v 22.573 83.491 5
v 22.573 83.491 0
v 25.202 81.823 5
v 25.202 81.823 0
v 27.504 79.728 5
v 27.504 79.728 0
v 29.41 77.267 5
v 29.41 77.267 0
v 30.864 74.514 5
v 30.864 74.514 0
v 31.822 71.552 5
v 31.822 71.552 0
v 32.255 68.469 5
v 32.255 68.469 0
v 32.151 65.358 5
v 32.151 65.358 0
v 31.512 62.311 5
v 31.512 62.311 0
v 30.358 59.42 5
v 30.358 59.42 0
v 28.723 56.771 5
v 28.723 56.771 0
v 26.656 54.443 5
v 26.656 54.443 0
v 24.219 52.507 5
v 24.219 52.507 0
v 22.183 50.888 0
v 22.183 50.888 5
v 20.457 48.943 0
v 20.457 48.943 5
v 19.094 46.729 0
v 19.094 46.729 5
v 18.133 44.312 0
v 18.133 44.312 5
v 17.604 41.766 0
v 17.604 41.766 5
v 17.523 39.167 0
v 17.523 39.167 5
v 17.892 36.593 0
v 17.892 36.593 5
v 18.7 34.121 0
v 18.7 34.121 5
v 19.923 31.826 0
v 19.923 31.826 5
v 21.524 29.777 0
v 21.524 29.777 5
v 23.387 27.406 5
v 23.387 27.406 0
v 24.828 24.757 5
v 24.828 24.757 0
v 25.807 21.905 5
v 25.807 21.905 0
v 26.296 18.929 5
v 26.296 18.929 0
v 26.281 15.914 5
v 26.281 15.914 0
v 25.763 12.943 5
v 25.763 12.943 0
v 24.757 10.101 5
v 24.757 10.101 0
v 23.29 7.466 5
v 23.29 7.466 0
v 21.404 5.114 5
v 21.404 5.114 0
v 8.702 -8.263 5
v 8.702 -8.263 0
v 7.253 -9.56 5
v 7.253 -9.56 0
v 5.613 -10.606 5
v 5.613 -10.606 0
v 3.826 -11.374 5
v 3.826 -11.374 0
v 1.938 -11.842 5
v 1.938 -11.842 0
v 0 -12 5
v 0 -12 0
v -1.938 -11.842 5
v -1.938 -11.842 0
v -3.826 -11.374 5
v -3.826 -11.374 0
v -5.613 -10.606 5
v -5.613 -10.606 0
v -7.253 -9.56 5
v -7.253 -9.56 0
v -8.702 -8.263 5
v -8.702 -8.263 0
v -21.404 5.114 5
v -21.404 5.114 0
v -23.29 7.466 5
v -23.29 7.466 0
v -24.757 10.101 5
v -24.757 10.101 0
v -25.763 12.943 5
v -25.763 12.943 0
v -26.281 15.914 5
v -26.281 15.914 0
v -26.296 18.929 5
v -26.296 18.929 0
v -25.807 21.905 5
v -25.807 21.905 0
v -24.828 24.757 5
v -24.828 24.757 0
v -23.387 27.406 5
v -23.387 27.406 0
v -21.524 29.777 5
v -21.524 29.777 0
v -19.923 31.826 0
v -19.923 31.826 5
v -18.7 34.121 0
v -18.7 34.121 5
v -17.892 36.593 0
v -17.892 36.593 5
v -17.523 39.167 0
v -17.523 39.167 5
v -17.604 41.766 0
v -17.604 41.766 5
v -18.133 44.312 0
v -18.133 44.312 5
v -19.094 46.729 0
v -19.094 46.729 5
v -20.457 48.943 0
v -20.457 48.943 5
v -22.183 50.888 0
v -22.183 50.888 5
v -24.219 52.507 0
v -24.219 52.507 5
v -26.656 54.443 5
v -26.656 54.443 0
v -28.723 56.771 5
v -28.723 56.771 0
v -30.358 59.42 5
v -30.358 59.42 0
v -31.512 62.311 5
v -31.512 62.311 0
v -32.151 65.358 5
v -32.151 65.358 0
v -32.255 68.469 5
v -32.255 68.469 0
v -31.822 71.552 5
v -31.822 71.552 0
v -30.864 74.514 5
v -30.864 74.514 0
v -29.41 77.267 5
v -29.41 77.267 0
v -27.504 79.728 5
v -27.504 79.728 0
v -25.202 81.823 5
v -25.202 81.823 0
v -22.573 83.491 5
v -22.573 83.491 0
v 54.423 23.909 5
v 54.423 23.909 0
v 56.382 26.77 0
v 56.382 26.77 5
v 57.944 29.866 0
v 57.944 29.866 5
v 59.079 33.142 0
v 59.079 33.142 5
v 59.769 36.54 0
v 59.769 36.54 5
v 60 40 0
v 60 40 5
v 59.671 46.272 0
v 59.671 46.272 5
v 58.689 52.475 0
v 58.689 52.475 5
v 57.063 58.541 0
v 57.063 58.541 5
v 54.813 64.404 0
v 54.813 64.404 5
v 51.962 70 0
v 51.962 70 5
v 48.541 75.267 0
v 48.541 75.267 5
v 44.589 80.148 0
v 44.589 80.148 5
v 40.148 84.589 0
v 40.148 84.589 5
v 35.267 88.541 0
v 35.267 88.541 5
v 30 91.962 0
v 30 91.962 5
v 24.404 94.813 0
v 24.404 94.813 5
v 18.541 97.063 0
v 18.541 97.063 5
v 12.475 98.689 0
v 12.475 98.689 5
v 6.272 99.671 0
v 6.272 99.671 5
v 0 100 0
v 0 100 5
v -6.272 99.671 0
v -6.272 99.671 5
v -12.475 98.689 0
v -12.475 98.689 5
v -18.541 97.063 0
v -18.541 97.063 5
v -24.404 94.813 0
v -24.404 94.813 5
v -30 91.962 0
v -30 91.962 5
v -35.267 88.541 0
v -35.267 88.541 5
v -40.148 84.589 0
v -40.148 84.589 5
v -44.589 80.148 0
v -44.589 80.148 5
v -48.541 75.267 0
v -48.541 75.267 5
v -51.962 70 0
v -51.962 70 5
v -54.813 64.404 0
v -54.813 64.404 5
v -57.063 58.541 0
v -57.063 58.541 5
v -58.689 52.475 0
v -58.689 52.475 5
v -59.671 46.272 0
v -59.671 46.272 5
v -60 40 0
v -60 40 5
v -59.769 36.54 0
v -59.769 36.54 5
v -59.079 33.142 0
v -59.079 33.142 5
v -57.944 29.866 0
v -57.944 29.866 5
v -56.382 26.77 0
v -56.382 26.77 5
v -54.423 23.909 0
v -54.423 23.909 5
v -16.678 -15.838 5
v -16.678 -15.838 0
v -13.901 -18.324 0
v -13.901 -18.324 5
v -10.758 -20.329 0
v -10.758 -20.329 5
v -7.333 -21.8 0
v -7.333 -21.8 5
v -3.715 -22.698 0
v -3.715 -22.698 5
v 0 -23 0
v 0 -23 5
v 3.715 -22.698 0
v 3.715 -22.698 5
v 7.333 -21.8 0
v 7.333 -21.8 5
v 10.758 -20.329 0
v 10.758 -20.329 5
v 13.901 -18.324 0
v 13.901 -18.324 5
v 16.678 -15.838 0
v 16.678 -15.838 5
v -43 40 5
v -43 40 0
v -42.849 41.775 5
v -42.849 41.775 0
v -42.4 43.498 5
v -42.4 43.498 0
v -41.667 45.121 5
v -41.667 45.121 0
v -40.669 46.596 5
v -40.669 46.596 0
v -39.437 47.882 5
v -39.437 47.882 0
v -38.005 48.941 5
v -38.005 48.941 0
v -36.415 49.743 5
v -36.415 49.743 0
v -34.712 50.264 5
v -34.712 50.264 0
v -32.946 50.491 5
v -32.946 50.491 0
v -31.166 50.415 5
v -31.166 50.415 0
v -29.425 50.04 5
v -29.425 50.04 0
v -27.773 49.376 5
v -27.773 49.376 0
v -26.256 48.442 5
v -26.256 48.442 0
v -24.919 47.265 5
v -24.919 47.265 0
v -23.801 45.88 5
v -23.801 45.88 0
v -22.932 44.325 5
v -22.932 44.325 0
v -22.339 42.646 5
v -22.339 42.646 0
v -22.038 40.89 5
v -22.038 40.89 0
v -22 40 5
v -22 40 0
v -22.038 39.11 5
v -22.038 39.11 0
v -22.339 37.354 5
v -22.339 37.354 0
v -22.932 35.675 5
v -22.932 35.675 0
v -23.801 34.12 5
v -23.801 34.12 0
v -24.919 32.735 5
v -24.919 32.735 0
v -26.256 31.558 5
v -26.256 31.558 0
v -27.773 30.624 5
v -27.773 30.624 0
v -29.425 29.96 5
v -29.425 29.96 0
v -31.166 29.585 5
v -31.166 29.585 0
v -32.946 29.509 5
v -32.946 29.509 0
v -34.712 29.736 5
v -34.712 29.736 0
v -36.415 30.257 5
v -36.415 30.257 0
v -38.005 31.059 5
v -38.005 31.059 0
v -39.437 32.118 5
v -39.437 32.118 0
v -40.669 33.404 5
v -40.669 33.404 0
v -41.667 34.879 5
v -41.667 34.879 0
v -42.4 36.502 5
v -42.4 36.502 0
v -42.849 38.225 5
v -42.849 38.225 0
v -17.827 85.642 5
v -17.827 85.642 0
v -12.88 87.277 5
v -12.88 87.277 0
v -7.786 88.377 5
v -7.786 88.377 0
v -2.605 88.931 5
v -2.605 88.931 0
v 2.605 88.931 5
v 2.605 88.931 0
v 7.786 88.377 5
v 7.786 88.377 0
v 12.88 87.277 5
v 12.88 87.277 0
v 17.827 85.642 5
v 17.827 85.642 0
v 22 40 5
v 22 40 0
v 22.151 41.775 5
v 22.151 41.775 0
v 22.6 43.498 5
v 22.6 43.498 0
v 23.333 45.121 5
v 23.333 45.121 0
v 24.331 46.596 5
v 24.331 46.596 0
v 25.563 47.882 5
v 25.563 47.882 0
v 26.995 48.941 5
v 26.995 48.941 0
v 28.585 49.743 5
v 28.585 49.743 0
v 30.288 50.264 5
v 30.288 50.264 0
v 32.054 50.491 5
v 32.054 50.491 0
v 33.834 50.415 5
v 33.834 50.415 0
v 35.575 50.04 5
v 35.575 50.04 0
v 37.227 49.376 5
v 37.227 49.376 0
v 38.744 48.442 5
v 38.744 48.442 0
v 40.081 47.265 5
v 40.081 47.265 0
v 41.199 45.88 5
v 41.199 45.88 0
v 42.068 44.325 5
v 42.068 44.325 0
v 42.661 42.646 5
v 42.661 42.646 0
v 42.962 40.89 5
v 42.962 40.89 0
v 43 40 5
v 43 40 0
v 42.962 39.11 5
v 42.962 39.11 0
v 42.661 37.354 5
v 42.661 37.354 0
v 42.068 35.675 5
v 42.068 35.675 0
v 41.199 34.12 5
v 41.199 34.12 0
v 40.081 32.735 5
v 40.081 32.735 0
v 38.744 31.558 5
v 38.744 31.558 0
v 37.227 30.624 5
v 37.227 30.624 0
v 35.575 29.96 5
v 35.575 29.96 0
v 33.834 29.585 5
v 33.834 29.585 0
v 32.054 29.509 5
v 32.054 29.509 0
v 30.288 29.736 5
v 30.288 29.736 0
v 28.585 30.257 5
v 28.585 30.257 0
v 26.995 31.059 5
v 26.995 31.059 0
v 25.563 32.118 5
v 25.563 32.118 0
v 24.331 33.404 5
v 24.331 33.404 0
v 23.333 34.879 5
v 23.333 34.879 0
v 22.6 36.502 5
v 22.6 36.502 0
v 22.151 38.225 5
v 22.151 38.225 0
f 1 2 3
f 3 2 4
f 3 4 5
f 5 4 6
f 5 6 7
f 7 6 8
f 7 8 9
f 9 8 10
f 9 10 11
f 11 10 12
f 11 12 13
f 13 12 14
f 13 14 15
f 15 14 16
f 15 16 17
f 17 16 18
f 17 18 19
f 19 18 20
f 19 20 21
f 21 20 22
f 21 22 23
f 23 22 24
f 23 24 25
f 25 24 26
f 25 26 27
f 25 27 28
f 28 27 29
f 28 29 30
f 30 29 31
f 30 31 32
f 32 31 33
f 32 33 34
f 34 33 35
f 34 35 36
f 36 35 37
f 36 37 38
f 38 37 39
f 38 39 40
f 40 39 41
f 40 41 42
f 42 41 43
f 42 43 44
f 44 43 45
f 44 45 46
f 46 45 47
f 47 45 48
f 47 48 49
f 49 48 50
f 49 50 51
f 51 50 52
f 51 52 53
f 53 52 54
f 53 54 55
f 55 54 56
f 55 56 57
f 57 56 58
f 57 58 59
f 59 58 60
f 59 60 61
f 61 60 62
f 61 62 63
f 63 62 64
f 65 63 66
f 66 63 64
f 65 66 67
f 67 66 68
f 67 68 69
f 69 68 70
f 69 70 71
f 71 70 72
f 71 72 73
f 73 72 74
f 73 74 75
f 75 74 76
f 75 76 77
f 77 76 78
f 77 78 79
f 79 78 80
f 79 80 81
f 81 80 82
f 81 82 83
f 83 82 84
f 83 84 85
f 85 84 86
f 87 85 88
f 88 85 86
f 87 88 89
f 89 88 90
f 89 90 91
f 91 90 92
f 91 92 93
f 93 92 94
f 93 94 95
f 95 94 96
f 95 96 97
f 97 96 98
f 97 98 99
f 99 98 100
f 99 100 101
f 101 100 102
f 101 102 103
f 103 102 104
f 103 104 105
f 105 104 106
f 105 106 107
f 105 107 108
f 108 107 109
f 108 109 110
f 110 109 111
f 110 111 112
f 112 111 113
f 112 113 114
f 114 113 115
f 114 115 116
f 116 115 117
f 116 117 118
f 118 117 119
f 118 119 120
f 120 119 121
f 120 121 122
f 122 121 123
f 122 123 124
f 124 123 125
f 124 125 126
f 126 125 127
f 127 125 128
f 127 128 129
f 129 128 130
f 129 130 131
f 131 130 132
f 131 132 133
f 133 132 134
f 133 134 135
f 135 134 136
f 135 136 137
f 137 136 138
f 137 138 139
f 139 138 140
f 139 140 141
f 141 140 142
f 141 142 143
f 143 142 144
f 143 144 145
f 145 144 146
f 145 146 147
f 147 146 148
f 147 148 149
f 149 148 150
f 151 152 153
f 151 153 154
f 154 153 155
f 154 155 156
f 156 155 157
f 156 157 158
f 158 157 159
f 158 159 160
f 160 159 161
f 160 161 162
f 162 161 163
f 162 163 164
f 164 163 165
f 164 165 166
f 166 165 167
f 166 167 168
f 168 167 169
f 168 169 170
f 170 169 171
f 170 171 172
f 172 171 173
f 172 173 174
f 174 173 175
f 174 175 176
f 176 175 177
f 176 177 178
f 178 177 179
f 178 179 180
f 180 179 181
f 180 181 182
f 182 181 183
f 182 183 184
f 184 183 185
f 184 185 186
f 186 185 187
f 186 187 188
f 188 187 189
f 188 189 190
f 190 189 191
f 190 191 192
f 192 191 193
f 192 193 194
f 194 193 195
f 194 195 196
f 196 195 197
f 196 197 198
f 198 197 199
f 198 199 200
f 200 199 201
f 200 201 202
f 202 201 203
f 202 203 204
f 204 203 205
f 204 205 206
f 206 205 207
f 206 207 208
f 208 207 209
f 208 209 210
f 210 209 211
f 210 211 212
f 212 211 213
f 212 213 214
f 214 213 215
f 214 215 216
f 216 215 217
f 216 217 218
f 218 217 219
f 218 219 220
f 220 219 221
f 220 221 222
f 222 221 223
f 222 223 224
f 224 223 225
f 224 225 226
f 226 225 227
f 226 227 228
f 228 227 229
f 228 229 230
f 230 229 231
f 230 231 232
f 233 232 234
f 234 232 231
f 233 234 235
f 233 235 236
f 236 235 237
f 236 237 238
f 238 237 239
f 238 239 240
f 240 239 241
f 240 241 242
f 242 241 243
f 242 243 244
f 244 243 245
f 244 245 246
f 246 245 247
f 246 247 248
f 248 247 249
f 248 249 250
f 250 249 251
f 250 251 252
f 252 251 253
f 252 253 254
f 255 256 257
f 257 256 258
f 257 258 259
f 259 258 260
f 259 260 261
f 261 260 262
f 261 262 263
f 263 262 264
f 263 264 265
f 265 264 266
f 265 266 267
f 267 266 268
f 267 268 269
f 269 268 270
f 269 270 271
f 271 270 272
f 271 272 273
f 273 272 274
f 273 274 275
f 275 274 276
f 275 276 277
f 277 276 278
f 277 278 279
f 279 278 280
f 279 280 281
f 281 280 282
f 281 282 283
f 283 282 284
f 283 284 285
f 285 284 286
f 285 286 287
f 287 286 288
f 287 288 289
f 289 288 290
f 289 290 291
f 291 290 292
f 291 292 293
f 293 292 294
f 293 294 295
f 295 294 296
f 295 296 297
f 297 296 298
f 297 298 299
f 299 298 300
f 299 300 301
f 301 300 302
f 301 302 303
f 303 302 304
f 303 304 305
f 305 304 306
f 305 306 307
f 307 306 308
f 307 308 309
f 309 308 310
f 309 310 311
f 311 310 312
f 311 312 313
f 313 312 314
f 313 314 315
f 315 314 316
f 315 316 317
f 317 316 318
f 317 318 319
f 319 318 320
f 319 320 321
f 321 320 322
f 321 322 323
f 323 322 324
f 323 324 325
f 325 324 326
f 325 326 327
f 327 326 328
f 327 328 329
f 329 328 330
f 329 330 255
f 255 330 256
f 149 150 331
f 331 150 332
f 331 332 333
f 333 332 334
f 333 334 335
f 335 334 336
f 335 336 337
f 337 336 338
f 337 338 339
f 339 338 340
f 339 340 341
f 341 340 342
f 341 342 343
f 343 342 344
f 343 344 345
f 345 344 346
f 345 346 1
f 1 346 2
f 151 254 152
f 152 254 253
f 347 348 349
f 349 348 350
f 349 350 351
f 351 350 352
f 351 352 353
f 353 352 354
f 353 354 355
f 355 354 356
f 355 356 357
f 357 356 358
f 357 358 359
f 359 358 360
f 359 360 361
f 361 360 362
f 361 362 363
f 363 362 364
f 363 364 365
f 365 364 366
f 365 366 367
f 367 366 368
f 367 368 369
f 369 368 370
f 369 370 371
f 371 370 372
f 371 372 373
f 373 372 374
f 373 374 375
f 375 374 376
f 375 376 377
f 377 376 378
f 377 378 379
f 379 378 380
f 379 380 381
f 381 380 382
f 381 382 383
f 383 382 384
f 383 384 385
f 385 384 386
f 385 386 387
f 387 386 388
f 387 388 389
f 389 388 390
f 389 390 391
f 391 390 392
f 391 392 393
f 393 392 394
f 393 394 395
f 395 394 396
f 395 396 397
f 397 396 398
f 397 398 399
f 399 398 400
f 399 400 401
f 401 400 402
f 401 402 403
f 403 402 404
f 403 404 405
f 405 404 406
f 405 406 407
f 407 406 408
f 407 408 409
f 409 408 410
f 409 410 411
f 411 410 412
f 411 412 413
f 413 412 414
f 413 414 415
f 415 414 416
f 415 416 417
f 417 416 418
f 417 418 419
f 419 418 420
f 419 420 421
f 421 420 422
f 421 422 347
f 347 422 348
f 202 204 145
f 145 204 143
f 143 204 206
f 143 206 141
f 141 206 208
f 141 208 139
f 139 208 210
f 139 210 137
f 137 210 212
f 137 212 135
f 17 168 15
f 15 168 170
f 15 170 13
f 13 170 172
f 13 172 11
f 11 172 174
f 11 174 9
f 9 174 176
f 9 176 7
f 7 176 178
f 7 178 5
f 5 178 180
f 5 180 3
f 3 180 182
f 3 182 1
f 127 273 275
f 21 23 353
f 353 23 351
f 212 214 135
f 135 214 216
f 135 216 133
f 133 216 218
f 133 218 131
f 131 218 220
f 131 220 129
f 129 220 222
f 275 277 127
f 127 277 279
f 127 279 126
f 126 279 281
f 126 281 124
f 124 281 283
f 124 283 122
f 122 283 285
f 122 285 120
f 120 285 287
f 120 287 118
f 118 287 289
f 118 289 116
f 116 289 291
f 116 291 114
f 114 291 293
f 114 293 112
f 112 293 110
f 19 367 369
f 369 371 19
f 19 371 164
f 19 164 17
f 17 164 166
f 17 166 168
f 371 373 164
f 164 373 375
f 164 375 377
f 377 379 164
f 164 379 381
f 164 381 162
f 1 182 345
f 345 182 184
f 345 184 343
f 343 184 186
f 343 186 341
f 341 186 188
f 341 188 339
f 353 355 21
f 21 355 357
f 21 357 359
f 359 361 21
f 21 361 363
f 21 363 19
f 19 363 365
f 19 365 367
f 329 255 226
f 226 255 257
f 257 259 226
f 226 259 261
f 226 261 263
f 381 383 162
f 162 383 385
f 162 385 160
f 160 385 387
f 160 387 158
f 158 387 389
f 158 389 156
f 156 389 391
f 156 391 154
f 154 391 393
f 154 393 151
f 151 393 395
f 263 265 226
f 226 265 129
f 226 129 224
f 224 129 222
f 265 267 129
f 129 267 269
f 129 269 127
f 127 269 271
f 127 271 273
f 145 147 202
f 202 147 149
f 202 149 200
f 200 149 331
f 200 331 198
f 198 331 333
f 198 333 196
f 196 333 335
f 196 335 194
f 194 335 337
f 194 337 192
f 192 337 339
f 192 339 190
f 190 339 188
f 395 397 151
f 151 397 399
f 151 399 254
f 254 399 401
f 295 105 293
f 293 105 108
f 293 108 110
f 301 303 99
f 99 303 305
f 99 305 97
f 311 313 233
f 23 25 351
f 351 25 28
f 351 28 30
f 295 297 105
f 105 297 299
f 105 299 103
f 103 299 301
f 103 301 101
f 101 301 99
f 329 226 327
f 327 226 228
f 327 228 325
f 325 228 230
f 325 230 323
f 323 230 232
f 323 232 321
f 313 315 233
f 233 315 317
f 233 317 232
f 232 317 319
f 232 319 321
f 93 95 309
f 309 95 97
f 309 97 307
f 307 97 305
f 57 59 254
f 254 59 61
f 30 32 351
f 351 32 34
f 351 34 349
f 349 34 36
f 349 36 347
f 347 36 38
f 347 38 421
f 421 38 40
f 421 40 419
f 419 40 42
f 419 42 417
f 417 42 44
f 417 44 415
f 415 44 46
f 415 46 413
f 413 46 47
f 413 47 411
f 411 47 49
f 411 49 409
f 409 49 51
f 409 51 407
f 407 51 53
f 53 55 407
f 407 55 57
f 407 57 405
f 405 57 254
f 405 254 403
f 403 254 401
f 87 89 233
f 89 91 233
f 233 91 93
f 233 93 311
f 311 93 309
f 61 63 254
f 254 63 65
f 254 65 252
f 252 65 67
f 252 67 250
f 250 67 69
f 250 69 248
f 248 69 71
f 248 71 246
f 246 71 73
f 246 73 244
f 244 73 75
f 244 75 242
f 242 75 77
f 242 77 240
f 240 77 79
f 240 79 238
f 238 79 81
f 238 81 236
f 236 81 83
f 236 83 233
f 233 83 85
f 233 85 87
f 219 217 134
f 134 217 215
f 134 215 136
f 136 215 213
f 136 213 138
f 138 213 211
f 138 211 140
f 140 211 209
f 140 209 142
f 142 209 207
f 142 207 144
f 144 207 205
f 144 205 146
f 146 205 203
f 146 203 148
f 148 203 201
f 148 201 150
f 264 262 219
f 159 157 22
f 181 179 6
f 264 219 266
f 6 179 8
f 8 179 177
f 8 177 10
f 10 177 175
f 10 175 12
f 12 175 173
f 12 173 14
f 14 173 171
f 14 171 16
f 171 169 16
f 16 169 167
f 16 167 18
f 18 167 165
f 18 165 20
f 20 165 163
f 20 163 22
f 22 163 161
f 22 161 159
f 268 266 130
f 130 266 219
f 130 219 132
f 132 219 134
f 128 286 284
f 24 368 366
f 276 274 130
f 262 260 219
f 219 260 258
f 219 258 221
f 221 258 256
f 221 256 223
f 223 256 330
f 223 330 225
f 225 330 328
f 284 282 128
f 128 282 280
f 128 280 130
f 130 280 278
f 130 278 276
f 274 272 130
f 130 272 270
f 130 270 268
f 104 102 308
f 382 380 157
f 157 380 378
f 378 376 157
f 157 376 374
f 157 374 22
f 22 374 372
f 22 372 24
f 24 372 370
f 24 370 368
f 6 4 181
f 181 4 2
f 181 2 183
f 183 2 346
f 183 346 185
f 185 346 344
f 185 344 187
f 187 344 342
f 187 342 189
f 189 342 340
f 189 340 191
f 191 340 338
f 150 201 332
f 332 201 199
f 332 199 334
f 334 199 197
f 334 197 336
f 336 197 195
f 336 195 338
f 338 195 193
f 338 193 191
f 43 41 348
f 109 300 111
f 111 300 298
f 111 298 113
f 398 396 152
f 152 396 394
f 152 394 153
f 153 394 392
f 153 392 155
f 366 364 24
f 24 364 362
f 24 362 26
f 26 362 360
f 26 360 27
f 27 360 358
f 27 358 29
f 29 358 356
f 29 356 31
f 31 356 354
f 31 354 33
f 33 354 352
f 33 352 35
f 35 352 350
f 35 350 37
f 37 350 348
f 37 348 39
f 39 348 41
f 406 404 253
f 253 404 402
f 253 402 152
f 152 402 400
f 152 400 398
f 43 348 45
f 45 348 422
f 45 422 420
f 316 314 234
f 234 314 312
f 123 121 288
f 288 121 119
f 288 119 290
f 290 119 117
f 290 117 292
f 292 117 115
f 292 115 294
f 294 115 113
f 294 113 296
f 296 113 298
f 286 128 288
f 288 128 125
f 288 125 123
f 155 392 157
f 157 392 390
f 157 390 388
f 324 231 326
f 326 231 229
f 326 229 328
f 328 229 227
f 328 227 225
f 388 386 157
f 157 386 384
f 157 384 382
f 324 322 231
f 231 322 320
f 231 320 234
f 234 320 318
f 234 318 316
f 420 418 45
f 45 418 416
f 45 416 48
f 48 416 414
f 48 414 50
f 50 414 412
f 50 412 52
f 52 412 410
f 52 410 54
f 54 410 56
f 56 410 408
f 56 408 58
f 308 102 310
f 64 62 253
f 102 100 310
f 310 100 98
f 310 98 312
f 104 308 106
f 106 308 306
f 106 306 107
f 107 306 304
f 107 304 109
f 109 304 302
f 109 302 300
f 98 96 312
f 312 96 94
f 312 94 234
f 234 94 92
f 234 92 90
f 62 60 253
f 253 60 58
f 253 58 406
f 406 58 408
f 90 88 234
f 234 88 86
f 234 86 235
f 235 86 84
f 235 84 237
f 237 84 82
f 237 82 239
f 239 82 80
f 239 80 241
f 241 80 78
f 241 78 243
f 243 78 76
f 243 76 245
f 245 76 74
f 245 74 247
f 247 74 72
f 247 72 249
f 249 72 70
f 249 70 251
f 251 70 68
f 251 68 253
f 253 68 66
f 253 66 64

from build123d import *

# Parameters (mm, degrees)
SKETCH1_R           = 10.5
BOSS_EXTRUDE1_DEPTH = 5


with BuildPart() as part:
    # Sketch1 → Boss-Extrude1 (new body)
    with BuildSketch(Plane.XY):
        with BuildLine():
            ThreePointArc((-60, 40), (-58.56615935, 31.485082808), (-54.422783478, 23.909322108))
            Line((-54.422783478, 23.909322108), (-16.678178701, -15.837877232))
            ThreePointArc((-16.678178701, -15.837877232), (0, -23), (16.678178701, -15.837877232))
            Line((16.678178701, -15.837877232), (54.422783478, 23.909322108))
            ThreePointArc((54.422783478, 23.909322108), (58.56615935, 31.485082808), (60, 40))
            ThreePointArc((60, 40), (0, 100), (-60, 40))
        make_face()
        with Locations((-32.5, 40)):
            Circle(SKETCH1_R, mode=Mode.SUBTRACT)
        with BuildLine():
            Line((-8.701658453, -8.263240295), (-21.404458824, 5.113525511))
            ThreePointArc((-21.404458824, 5.113525511), (-26.35176104, 17.421416266), (-21.523623248, 29.77653907))
            ThreePointArc((-21.523623248, 29.77653907), (-17.604326655, 41.766045188), (-24.218531469, 52.506689369))
            ThreePointArc((-24.218531469, 52.506689369), (-32.255432897, 68.469423949), (-22.572828784, 83.491003675))
            ThreePointArc((-22.572828784, 83.491003675), (0, 89), (22.572828784, 83.491003675))
            ThreePointArc((22.572828784, 83.491003675), (32.255432897, 68.469423949), (24.218531469, 52.506689369))
            ThreePointArc((24.218531469, 52.506689369), (17.604326655, 41.766045188), (21.523623248, 29.77653907))
            ThreePointArc((21.523623248, 29.77653907), (26.35176104, 17.421416266), (21.404458824, 5.113525511))
            Line((21.404458824, 5.113525511), (8.701658453, -8.263240295))
            ThreePointArc((8.701658453, -8.263240295), (0, -12), (-8.701658453, -8.263240295))
        make_face(mode=Mode.SUBTRACT)
        with Locations((32.5, 40)):
            Circle(SKETCH1_R, mode=Mode.SUBTRACT)
    extrude(amount=BOSS_EXTRUDE1_DEPTH)


solid = part.part
